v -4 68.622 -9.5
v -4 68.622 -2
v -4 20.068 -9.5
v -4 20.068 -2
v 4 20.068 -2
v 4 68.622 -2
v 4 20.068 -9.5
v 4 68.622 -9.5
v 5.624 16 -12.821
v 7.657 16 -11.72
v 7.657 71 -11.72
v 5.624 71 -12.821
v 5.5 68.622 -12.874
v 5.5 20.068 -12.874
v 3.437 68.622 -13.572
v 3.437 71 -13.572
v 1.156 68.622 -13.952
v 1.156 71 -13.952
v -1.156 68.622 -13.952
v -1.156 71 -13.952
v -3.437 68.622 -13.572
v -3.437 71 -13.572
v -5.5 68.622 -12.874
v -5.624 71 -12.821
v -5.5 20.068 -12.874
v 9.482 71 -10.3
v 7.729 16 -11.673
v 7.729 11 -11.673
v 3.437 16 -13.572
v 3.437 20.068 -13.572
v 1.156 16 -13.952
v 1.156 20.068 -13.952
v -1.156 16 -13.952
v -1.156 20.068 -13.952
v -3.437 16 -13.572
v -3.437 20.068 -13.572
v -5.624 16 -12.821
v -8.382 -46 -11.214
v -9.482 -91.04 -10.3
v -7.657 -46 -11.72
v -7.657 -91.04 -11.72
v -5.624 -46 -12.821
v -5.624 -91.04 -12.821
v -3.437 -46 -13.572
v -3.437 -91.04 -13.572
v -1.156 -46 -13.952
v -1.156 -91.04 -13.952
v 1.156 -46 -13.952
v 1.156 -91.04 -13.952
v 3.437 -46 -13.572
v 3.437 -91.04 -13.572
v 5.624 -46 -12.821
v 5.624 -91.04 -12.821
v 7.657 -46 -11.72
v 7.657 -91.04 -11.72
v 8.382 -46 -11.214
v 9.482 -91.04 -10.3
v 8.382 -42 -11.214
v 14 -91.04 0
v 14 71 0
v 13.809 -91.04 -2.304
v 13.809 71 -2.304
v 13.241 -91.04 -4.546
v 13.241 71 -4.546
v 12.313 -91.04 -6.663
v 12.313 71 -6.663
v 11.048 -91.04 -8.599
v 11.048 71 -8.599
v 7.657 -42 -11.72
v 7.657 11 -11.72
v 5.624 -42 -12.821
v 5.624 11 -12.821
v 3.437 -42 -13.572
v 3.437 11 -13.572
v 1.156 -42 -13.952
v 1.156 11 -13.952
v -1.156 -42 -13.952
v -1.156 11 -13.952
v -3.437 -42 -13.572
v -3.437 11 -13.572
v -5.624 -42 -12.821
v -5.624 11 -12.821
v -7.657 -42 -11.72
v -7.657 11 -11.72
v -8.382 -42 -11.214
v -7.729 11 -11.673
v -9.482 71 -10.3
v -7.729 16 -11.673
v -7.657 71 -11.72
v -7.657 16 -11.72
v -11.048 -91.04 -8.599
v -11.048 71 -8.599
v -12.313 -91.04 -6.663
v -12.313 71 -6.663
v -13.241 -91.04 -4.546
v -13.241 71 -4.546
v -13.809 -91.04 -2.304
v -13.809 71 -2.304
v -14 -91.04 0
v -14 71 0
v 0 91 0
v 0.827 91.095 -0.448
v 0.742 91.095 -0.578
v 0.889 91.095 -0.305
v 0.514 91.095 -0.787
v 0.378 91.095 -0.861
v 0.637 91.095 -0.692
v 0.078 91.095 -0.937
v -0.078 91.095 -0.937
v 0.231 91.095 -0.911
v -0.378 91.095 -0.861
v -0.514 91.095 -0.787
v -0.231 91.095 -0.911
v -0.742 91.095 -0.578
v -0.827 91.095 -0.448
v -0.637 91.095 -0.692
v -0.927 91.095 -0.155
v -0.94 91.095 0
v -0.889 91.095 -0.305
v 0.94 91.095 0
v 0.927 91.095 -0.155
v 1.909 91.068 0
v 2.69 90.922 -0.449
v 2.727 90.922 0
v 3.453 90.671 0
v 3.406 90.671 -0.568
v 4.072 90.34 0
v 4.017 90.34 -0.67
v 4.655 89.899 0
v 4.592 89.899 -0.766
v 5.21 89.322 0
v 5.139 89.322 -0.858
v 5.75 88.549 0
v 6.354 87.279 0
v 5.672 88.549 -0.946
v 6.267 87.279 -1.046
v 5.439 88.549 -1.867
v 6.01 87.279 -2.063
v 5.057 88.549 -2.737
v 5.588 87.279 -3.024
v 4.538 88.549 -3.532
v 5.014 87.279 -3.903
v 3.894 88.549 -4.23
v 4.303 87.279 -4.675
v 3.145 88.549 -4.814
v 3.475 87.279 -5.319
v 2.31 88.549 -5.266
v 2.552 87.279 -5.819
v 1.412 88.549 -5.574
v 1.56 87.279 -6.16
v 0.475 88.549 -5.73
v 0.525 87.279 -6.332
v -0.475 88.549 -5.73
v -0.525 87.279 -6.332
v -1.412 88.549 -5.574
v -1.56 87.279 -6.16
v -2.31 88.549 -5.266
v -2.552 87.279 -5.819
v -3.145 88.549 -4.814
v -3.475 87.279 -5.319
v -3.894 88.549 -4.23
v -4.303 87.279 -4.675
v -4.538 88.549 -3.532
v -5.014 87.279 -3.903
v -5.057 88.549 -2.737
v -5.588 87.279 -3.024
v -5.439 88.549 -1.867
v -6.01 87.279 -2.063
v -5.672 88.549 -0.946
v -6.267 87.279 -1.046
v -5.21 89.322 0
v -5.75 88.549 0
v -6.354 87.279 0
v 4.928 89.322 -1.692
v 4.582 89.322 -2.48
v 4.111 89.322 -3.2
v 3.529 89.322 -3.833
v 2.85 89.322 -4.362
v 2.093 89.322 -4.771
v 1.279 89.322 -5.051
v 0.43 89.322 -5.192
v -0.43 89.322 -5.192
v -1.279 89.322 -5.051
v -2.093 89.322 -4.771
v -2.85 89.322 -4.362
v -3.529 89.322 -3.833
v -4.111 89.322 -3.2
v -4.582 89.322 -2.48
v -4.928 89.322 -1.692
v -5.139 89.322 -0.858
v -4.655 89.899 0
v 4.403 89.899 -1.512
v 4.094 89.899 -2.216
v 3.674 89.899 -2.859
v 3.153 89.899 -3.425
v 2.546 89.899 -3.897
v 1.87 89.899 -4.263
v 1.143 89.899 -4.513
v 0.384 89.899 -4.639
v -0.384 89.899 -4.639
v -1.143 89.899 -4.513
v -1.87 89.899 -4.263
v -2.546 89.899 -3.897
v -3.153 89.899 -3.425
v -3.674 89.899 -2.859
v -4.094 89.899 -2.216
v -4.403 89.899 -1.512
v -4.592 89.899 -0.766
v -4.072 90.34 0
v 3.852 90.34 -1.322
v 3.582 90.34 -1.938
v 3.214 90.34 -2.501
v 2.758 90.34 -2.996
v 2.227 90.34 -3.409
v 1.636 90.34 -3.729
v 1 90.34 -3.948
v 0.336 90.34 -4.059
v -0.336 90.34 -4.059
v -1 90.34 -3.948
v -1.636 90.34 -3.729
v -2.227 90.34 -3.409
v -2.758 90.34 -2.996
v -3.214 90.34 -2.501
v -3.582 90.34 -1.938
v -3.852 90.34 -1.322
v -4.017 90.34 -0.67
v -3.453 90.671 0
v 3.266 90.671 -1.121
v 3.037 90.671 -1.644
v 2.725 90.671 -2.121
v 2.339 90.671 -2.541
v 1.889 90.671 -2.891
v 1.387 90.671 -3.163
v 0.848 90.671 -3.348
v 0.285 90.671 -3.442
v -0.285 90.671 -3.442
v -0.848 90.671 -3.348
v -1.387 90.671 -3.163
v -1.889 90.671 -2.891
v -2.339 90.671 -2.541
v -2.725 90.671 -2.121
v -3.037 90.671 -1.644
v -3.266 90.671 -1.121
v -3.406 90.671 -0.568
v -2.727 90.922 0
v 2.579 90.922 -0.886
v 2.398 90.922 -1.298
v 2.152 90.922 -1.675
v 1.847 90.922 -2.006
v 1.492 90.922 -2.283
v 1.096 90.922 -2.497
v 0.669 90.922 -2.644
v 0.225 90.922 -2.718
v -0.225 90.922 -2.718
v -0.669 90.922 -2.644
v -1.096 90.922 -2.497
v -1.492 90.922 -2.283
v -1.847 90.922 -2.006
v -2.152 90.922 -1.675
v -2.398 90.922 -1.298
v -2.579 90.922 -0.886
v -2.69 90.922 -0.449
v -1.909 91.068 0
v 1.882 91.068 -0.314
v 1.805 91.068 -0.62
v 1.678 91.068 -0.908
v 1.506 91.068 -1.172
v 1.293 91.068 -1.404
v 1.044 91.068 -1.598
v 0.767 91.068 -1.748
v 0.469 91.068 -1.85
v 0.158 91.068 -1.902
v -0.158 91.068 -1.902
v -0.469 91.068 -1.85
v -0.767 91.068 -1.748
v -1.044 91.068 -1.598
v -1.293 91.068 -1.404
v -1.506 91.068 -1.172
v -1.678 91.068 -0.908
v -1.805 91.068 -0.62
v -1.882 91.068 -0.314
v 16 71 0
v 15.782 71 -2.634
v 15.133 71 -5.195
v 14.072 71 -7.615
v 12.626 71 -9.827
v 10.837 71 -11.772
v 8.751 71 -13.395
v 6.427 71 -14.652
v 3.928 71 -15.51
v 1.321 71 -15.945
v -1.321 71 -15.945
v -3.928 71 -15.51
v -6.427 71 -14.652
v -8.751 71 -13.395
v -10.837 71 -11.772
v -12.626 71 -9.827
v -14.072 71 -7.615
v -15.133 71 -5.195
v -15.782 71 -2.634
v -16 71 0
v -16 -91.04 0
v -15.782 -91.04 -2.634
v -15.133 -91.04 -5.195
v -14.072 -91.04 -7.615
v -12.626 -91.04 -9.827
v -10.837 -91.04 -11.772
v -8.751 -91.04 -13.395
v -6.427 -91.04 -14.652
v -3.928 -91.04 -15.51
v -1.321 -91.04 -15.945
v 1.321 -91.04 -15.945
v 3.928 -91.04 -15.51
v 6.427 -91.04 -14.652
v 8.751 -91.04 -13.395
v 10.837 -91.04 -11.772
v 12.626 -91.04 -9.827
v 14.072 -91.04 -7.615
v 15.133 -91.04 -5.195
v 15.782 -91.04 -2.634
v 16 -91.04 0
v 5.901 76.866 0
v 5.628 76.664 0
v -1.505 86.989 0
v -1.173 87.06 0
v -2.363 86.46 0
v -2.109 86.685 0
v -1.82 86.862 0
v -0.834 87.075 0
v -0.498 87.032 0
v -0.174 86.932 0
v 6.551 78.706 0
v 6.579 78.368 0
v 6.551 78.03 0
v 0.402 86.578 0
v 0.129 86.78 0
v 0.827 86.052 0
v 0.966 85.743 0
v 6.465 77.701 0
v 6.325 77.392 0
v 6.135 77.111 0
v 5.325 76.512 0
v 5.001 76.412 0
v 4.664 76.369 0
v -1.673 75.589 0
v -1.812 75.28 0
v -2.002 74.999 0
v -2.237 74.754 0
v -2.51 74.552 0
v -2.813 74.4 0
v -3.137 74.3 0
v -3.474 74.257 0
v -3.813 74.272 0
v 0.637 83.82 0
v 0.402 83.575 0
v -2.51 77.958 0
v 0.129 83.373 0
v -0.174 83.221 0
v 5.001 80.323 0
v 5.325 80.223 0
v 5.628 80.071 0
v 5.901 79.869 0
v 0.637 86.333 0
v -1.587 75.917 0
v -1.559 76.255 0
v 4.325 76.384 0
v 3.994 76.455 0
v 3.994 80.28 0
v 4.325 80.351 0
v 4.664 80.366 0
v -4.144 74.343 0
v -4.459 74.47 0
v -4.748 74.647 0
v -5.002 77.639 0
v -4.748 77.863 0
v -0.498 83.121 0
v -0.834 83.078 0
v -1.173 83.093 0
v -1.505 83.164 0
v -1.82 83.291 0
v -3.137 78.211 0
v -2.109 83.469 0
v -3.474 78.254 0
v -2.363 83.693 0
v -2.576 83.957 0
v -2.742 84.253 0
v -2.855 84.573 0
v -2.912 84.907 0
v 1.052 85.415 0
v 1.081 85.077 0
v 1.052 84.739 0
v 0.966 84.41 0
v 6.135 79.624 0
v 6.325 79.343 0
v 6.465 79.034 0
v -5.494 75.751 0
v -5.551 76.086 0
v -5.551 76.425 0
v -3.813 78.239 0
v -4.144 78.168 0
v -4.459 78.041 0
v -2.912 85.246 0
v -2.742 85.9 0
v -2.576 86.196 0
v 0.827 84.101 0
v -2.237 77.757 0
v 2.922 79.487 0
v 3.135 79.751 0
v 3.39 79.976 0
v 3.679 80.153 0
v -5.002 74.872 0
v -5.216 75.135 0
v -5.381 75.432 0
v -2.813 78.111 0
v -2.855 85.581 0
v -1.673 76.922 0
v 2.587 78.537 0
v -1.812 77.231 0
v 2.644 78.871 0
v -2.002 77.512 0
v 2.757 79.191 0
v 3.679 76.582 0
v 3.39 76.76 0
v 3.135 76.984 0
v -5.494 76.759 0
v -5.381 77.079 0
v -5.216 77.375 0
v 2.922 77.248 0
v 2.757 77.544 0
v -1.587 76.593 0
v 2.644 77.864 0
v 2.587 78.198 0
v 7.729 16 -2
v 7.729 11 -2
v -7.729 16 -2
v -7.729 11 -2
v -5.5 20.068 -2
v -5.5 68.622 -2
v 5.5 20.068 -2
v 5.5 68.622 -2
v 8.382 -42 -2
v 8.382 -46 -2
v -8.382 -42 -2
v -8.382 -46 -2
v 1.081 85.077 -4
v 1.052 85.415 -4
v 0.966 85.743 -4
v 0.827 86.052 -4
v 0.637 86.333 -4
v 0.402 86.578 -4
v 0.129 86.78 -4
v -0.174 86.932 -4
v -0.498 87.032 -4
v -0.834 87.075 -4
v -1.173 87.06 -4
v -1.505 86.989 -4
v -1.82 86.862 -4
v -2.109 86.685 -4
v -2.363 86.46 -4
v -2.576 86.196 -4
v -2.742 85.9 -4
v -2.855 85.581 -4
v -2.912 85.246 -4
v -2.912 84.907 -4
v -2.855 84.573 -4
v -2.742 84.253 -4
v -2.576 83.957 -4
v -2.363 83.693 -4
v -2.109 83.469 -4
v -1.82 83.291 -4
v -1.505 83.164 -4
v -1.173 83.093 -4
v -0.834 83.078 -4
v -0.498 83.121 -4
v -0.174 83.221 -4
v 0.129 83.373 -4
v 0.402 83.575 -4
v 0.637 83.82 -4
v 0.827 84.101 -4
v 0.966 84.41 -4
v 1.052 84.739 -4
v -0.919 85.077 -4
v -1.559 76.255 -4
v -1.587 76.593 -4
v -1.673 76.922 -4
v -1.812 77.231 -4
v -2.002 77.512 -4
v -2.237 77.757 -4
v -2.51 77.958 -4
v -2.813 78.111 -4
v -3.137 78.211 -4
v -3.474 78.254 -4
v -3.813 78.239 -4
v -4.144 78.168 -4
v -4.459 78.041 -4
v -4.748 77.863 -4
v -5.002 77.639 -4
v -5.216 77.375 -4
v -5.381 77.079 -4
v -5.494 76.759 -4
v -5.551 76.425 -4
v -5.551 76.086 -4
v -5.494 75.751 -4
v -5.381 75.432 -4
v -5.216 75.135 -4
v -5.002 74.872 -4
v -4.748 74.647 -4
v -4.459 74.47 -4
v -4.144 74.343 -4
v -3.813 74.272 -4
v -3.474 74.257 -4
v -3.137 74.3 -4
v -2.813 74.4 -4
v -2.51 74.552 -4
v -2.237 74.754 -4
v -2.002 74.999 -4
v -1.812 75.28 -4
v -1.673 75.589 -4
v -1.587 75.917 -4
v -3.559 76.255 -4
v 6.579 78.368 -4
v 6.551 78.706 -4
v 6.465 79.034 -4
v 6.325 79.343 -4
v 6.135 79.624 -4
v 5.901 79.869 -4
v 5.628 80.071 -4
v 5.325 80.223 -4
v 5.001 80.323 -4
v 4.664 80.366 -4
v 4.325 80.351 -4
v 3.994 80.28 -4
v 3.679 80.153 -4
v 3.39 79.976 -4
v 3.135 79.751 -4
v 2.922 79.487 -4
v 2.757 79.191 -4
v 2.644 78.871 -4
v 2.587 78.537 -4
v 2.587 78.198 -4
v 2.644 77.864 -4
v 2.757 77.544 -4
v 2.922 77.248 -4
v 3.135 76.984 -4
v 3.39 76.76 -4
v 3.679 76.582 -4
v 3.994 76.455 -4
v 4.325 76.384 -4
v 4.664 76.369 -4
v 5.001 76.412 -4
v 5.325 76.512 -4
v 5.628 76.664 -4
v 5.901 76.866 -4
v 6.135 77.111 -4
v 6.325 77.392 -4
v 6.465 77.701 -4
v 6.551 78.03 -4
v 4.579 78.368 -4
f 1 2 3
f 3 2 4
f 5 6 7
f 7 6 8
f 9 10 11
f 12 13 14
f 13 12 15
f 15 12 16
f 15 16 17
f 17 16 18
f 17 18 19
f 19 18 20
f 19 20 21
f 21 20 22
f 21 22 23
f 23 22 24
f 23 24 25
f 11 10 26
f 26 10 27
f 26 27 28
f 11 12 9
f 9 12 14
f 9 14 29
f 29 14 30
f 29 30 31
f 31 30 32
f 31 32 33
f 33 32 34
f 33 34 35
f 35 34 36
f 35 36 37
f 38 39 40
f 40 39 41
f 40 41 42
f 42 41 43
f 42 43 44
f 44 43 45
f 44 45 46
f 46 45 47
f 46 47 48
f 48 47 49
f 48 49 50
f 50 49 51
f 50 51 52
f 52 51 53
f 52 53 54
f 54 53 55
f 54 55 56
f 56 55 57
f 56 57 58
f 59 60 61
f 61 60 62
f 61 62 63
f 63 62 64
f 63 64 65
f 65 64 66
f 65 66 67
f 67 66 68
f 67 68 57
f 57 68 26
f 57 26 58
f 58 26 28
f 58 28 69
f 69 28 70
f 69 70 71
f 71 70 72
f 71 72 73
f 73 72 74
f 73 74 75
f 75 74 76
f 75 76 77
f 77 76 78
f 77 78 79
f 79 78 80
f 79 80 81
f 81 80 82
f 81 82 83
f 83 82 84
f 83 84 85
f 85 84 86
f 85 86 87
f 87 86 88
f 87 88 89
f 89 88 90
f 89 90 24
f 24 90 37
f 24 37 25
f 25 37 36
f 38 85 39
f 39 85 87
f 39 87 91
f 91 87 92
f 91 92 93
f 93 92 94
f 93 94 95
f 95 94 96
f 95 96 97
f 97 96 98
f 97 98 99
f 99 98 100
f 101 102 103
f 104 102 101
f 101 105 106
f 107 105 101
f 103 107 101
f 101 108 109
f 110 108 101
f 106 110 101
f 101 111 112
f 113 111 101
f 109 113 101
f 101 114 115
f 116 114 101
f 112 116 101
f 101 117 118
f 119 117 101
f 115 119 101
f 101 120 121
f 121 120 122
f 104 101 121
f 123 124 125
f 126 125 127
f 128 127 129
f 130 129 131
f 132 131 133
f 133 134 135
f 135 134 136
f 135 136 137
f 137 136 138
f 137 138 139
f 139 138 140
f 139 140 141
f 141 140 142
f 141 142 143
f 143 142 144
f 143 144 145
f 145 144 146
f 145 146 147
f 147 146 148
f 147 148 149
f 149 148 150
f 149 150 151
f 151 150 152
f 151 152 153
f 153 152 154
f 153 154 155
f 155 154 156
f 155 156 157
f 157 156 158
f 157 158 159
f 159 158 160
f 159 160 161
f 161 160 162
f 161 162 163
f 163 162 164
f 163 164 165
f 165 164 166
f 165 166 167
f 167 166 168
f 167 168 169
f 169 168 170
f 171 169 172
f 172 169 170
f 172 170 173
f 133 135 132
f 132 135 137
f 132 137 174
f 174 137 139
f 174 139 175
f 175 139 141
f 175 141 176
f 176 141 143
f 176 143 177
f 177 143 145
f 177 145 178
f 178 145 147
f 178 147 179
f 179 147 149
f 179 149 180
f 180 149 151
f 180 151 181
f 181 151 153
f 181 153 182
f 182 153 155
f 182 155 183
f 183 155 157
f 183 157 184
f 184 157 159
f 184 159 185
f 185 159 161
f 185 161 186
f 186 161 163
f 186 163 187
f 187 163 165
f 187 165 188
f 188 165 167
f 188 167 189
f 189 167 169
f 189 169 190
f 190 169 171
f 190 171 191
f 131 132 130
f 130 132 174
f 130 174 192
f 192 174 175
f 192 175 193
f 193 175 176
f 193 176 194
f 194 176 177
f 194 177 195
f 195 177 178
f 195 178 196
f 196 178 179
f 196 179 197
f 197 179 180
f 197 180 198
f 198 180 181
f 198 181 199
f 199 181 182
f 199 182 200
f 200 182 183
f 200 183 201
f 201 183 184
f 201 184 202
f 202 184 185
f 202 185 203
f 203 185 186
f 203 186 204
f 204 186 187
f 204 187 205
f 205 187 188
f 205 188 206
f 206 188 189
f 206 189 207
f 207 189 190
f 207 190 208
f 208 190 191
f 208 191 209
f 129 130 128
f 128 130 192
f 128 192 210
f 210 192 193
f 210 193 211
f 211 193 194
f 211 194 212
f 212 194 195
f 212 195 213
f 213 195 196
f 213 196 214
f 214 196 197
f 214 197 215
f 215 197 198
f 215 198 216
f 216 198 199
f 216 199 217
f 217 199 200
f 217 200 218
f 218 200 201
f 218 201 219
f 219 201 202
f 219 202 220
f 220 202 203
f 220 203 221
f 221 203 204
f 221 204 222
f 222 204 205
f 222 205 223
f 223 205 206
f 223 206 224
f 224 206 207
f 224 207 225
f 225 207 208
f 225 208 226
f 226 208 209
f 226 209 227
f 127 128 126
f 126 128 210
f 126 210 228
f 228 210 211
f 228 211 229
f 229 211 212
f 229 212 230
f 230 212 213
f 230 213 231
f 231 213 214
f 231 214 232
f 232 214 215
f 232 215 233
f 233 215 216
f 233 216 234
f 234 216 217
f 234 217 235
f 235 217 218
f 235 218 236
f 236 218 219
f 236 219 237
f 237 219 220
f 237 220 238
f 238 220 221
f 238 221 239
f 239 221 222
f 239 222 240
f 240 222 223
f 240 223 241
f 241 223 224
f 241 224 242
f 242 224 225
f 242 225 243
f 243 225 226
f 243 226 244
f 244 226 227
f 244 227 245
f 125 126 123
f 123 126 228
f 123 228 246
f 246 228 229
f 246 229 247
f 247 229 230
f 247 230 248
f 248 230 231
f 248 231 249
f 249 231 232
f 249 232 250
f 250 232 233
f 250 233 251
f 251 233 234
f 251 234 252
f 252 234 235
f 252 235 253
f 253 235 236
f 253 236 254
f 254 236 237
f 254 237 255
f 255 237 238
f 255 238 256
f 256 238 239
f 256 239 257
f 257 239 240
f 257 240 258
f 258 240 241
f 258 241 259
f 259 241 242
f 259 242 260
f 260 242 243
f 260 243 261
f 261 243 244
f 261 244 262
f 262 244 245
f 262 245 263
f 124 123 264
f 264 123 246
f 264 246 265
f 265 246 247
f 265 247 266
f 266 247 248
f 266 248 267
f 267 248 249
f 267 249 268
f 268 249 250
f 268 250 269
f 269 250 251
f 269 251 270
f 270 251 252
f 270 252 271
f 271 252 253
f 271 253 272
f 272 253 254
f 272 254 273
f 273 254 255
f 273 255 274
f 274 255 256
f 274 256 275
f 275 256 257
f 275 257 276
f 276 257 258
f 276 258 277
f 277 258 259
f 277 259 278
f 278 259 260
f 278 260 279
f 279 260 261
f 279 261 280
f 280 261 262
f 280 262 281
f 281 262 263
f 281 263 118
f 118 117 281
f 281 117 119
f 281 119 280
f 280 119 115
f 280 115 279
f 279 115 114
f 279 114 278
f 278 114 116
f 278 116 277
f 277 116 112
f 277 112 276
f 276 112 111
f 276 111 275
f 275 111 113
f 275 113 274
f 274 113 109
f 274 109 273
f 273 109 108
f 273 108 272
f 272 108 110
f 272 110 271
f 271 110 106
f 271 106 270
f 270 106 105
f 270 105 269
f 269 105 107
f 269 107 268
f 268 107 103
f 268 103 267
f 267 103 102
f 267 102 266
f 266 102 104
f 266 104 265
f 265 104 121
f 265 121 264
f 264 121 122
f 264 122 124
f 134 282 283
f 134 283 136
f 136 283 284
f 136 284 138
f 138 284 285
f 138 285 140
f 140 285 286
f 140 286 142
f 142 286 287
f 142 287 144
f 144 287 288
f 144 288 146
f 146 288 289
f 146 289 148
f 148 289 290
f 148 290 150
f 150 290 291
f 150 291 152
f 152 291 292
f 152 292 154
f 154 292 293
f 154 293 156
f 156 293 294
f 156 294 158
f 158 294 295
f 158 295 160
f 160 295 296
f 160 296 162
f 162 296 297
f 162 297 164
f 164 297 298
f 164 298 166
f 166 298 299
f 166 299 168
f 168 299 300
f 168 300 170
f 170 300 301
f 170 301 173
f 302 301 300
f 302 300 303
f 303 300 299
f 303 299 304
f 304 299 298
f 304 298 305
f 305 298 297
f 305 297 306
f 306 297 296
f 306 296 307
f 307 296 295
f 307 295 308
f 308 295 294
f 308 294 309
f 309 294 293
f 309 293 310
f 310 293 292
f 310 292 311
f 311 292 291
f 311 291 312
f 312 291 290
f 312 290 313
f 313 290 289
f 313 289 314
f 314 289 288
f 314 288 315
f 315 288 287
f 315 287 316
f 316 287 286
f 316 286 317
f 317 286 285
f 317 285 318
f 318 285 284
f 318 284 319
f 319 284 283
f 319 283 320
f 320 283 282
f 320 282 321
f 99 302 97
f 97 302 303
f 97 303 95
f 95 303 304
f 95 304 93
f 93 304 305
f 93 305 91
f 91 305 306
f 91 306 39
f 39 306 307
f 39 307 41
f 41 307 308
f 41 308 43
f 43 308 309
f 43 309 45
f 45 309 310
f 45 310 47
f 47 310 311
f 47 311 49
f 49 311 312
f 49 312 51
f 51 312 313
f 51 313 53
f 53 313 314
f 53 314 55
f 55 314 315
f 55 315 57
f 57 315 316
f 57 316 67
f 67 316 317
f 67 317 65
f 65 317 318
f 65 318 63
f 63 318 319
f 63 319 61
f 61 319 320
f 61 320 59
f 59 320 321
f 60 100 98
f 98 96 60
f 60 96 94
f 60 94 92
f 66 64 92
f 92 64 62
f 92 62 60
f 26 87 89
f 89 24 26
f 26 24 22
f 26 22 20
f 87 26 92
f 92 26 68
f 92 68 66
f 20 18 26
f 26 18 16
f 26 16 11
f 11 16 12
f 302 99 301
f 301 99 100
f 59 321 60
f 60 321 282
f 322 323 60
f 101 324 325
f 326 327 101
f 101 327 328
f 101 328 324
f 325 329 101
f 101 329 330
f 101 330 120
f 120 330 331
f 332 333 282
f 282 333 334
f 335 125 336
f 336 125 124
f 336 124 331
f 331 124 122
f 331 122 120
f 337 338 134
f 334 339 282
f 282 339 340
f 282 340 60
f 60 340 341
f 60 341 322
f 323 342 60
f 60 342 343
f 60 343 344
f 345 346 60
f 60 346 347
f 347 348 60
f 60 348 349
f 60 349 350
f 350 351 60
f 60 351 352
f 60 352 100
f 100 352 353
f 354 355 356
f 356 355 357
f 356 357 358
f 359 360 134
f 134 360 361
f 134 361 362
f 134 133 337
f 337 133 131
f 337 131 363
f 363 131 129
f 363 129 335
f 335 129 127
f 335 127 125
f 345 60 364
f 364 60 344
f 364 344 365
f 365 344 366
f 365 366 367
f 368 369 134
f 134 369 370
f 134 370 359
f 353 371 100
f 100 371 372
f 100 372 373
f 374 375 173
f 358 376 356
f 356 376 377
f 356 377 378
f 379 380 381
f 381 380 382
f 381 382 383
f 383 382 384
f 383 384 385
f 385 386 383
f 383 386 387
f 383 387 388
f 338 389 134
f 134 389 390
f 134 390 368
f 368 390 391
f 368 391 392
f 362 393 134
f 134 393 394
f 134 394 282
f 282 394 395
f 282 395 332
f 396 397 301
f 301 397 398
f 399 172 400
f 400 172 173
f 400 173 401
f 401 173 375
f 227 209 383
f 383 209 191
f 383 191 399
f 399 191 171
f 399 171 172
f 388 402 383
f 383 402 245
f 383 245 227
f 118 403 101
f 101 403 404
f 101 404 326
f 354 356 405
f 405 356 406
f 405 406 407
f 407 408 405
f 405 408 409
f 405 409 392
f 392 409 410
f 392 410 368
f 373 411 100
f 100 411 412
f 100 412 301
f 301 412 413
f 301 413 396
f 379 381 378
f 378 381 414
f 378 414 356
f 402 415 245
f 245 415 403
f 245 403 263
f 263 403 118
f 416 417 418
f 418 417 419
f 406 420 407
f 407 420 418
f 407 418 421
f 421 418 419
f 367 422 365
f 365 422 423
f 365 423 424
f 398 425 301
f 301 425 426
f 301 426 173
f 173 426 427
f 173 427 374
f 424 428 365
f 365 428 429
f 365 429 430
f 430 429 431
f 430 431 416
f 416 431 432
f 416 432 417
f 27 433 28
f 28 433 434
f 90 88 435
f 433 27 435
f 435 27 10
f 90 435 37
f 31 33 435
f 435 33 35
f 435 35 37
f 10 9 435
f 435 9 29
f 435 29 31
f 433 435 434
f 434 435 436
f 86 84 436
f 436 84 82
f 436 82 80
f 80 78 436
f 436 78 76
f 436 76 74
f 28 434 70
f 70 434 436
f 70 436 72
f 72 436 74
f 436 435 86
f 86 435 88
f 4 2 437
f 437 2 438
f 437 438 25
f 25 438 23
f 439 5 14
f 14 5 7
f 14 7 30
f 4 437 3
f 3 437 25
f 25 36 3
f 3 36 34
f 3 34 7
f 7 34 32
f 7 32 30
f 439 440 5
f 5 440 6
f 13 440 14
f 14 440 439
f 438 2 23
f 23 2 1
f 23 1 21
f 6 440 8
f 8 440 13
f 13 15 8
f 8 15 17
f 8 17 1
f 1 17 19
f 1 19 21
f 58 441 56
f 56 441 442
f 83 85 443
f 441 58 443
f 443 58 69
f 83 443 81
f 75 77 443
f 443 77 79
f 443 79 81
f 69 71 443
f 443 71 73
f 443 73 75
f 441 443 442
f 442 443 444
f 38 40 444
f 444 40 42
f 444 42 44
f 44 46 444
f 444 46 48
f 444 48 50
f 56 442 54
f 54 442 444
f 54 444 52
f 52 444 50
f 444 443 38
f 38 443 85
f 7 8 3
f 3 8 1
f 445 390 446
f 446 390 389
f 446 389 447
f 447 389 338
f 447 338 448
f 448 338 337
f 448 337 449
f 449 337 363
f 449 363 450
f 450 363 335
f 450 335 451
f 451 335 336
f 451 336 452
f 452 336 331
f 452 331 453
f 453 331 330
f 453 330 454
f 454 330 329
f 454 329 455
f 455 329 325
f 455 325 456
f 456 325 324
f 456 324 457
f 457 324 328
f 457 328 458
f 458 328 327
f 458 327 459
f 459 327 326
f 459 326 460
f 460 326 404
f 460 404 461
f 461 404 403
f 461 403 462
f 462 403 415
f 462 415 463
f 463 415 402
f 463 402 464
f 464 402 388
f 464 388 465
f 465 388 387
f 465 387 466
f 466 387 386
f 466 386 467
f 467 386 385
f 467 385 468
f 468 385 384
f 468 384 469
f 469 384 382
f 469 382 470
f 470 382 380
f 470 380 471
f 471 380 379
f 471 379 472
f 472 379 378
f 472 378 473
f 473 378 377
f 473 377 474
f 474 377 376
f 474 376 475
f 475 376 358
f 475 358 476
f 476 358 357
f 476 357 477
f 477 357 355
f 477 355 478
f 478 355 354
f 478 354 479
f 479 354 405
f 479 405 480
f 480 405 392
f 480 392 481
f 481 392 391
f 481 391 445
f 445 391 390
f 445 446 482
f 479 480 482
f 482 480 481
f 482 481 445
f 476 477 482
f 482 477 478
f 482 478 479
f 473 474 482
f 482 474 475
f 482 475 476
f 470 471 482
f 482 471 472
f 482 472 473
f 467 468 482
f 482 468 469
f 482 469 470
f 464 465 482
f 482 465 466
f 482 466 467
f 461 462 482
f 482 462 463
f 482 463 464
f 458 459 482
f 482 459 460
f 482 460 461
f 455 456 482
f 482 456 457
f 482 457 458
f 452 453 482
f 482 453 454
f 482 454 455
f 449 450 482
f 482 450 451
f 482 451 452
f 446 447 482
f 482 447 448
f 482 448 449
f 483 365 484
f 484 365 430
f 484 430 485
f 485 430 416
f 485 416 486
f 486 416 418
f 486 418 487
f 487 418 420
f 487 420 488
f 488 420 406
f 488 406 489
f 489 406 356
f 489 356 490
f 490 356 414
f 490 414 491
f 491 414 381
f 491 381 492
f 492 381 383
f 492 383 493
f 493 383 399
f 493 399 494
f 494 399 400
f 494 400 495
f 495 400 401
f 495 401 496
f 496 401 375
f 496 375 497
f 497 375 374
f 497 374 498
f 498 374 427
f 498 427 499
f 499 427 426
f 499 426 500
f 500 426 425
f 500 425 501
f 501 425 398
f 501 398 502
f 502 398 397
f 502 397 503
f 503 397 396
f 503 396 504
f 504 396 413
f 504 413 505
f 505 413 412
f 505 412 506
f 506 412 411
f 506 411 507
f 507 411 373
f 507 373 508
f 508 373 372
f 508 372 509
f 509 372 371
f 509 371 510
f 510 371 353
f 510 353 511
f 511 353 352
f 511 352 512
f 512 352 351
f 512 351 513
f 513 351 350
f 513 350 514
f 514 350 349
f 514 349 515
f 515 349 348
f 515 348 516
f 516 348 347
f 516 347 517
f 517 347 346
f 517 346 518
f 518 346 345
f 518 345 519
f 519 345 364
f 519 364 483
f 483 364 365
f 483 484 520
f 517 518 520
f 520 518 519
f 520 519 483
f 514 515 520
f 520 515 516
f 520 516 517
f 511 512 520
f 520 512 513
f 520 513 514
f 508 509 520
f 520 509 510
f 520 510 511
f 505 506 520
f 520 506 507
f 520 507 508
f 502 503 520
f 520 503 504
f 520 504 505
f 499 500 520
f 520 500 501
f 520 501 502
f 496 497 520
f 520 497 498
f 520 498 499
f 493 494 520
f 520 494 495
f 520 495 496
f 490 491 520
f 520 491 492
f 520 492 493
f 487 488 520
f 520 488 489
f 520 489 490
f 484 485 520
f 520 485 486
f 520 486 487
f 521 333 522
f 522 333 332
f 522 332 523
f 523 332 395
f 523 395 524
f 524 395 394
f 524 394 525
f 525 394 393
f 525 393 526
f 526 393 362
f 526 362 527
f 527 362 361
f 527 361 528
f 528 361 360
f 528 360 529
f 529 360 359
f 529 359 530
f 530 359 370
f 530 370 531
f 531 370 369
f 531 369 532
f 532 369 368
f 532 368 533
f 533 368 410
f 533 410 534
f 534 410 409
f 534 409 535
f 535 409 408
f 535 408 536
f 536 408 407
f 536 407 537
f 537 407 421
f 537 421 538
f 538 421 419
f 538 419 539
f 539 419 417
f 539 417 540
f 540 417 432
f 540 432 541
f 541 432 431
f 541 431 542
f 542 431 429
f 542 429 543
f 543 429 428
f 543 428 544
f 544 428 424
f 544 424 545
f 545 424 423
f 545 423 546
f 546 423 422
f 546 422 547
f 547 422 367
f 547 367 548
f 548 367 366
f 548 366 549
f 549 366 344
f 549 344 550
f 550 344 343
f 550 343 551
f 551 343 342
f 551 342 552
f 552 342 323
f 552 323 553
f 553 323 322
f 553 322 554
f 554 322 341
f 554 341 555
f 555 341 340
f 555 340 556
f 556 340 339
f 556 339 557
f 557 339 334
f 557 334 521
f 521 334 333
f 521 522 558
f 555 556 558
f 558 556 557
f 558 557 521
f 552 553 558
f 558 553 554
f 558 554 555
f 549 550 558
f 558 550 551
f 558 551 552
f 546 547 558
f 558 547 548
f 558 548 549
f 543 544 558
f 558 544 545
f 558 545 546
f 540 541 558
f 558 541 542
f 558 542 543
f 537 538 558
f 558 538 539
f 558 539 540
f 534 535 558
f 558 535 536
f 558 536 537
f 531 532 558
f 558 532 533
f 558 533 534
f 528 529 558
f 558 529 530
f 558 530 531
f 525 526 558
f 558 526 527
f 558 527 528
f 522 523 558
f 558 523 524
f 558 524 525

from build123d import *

# Parameters (mm, degrees)
SKETCH2_W                = 2
SKETCH2_H                = 162.039928857
SKETCH5_W                = 72.783621468
SKETCH5_H                = 192.84631039
CUT_EXTRUDE1_DEPTH       = 94.869329042
BOSS_EXTRUDE1_REACH      = 97.869
BOSS_EXTRUDE1_END_RADIUS = 14
BOSS_EXTRUDE1_START      = -2
SKETCH4_W                = 15.457813272
SKETCH4_H                = 5
SKETCH4_W_2              = 16.763190872
SKETCH4_H_2              = 4
SKETCH4_W_3              = 1.5
SKETCH4_H_3              = 48.554461885
BOSS_EXTRUDE2_REACH      = 105.369
BOSS_EXTRUDE2_START      = -9.5
SKETCH4_4_W              = 8
SKETCH4_4_H              = 48.554461885
SKETCH6_R                = 2
CUT_EXTRUDE2_DEPTH       = 4


with BuildPart() as part:
    # Sketch1 → Revolve1 (revolve)
    with BuildSketch(Plane.XY, mode=Mode.PRIVATE) as revolve1_sk:
        with BuildLine():
            Line((6.354000149, 87.279039692), (16, 71))
            Line((16, 71), (0, 71))
            Line((0, 71), (0, 91))
            add(Edge.make_bspline(
                [(0, 91), (4.668589185, 91.723642341), (6.354000149, 87.279039692)],
                knots=[0, 0, 0, 1, 1, 1], degree=2))
        make_face()
    revolve(revolve1_sk.sketch.rotate(Axis((0, 91, 0), (0, -1, 0)), 180), axis=Axis((0, 91, 0), (0, -1, 0)))

    # Sketch2 → Revolve2 (revolve)
    with BuildSketch(Plane.XY, mode=Mode.PRIVATE) as revolve2_sk:
        with Locations((15, -10.019964429)):
            Rectangle(SKETCH2_W, SKETCH2_H)
    revolve(revolve2_sk.sketch.rotate(Axis((0, 91, 0), (0, -1, 0)), 180), axis=Axis((0, 91, 0), (0, -1, 0)))

    # Sketch5 → Cut-Extrude1 (cut, through all)
    with BuildSketch(Plane.XY):
        Rectangle(SKETCH5_W, SKETCH5_H)
    extrude(amount=CUT_EXTRUDE1_DEPTH, mode=Mode.SUBTRACT)

    # Boss-Extrude1: up to this cylinder (the profile starts inside it)
    boss_extrude1_end = Plane(origin=(0, 0.172402, 0), z_dir=(0, 1, 0)) * Cylinder(BOSS_EXTRUDE1_END_RADIUS, 313.082804, mode=Mode.PRIVATE)
    # Sketch4 → Boss-Extrude1 (add, up to the surface)
    with BuildSketch(Plane.XY.offset(BOSS_EXTRUDE1_START), mode=Mode.PRIVATE) as boss_extrude1_sk1:
        with Locations((0, 13.5)):
            Rectangle(SKETCH4_W, SKETCH4_H)
    boss_extrude1_tool1 = extrude(boss_extrude1_sk1.sketch, amount=-BOSS_EXTRUDE1_REACH, mode=Mode.PRIVATE) & boss_extrude1_end
    add(boss_extrude1_tool1.solids().sort_by_distance((0, 13.5, -2))[0])
    # Sketch4 → Boss-Extrude1 (add, up to the surface)
    with BuildSketch(Plane.XY.offset(BOSS_EXTRUDE1_START), mode=Mode.PRIVATE) as boss_extrude1_sk2:
        with Locations((0, -44)):
            Rectangle(SKETCH4_W_2, SKETCH4_H_2)
    boss_extrude1_tool2 = extrude(boss_extrude1_sk2.sketch, amount=-BOSS_EXTRUDE1_REACH, mode=Mode.PRIVATE) & boss_extrude1_end
    add(boss_extrude1_tool2.solids().sort_by_distance((0, -44, -2))[0])
    # Sketch4 → Boss-Extrude1 (add, up to the surface)
    with BuildSketch(Plane.XY.offset(BOSS_EXTRUDE1_START), mode=Mode.PRIVATE) as boss_extrude1_sk3:
        with Locations((4.75, 44.344804049)):
            Rectangle(SKETCH4_W_3, SKETCH4_H_3)
    boss_extrude1_tool3 = extrude(boss_extrude1_sk3.sketch, amount=-BOSS_EXTRUDE1_REACH, mode=Mode.PRIVATE) & boss_extrude1_end
    add(boss_extrude1_tool3.solids().sort_by_distance((4.75, 44.344804, -2))[0])
    # Sketch4 → Boss-Extrude1 (add, up to the surface)
    with BuildSketch(Plane.XY.offset(BOSS_EXTRUDE1_START), mode=Mode.PRIVATE) as boss_extrude1_sk4:
        with Locations((-4.75, 44.344804049)):
            Rectangle(SKETCH4_W_3, SKETCH4_H_3)
    boss_extrude1_tool4 = extrude(boss_extrude1_sk4.sketch, amount=-BOSS_EXTRUDE1_REACH, mode=Mode.PRIVATE) & boss_extrude1_end
    add(boss_extrude1_tool4.solids().sort_by_distance((-4.75, 44.344804, -2))[0])

    # Sketch4<4> → Boss-Extrude2 (add, up to next)
    with BuildSketch(Plane.XY.offset(BOSS_EXTRUDE2_START), mode=Mode.PRIVATE) as boss_extrude2_sk1:
        with Locations((0, 44.344804049)):
            Rectangle(SKETCH4_4_W, SKETCH4_4_H)
    boss_extrude2_tool1 = extrude(boss_extrude2_sk1.sketch, amount=-BOSS_EXTRUDE2_REACH, mode=Mode.PRIVATE) - part.part
    add(boss_extrude2_tool1.solids().sort_by_distance((0, 44.344804, -9.5))[0])

    # Sketch6 → Cut-Extrude2 (cut)
    with BuildSketch(Plane.XY):
        with Locations((4.579301858, 78.367512537)):
            Circle(SKETCH6_R)
        with Locations((-3.558513385, 76.255407818)):
            Circle(SKETCH6_R)
        with Locations((-0.919296183, 85.076551058)):
            Circle(SKETCH6_R)
    extrude(amount=-CUT_EXTRUDE2_DEPTH, mode=Mode.SUBTRACT)


solid = part.part
